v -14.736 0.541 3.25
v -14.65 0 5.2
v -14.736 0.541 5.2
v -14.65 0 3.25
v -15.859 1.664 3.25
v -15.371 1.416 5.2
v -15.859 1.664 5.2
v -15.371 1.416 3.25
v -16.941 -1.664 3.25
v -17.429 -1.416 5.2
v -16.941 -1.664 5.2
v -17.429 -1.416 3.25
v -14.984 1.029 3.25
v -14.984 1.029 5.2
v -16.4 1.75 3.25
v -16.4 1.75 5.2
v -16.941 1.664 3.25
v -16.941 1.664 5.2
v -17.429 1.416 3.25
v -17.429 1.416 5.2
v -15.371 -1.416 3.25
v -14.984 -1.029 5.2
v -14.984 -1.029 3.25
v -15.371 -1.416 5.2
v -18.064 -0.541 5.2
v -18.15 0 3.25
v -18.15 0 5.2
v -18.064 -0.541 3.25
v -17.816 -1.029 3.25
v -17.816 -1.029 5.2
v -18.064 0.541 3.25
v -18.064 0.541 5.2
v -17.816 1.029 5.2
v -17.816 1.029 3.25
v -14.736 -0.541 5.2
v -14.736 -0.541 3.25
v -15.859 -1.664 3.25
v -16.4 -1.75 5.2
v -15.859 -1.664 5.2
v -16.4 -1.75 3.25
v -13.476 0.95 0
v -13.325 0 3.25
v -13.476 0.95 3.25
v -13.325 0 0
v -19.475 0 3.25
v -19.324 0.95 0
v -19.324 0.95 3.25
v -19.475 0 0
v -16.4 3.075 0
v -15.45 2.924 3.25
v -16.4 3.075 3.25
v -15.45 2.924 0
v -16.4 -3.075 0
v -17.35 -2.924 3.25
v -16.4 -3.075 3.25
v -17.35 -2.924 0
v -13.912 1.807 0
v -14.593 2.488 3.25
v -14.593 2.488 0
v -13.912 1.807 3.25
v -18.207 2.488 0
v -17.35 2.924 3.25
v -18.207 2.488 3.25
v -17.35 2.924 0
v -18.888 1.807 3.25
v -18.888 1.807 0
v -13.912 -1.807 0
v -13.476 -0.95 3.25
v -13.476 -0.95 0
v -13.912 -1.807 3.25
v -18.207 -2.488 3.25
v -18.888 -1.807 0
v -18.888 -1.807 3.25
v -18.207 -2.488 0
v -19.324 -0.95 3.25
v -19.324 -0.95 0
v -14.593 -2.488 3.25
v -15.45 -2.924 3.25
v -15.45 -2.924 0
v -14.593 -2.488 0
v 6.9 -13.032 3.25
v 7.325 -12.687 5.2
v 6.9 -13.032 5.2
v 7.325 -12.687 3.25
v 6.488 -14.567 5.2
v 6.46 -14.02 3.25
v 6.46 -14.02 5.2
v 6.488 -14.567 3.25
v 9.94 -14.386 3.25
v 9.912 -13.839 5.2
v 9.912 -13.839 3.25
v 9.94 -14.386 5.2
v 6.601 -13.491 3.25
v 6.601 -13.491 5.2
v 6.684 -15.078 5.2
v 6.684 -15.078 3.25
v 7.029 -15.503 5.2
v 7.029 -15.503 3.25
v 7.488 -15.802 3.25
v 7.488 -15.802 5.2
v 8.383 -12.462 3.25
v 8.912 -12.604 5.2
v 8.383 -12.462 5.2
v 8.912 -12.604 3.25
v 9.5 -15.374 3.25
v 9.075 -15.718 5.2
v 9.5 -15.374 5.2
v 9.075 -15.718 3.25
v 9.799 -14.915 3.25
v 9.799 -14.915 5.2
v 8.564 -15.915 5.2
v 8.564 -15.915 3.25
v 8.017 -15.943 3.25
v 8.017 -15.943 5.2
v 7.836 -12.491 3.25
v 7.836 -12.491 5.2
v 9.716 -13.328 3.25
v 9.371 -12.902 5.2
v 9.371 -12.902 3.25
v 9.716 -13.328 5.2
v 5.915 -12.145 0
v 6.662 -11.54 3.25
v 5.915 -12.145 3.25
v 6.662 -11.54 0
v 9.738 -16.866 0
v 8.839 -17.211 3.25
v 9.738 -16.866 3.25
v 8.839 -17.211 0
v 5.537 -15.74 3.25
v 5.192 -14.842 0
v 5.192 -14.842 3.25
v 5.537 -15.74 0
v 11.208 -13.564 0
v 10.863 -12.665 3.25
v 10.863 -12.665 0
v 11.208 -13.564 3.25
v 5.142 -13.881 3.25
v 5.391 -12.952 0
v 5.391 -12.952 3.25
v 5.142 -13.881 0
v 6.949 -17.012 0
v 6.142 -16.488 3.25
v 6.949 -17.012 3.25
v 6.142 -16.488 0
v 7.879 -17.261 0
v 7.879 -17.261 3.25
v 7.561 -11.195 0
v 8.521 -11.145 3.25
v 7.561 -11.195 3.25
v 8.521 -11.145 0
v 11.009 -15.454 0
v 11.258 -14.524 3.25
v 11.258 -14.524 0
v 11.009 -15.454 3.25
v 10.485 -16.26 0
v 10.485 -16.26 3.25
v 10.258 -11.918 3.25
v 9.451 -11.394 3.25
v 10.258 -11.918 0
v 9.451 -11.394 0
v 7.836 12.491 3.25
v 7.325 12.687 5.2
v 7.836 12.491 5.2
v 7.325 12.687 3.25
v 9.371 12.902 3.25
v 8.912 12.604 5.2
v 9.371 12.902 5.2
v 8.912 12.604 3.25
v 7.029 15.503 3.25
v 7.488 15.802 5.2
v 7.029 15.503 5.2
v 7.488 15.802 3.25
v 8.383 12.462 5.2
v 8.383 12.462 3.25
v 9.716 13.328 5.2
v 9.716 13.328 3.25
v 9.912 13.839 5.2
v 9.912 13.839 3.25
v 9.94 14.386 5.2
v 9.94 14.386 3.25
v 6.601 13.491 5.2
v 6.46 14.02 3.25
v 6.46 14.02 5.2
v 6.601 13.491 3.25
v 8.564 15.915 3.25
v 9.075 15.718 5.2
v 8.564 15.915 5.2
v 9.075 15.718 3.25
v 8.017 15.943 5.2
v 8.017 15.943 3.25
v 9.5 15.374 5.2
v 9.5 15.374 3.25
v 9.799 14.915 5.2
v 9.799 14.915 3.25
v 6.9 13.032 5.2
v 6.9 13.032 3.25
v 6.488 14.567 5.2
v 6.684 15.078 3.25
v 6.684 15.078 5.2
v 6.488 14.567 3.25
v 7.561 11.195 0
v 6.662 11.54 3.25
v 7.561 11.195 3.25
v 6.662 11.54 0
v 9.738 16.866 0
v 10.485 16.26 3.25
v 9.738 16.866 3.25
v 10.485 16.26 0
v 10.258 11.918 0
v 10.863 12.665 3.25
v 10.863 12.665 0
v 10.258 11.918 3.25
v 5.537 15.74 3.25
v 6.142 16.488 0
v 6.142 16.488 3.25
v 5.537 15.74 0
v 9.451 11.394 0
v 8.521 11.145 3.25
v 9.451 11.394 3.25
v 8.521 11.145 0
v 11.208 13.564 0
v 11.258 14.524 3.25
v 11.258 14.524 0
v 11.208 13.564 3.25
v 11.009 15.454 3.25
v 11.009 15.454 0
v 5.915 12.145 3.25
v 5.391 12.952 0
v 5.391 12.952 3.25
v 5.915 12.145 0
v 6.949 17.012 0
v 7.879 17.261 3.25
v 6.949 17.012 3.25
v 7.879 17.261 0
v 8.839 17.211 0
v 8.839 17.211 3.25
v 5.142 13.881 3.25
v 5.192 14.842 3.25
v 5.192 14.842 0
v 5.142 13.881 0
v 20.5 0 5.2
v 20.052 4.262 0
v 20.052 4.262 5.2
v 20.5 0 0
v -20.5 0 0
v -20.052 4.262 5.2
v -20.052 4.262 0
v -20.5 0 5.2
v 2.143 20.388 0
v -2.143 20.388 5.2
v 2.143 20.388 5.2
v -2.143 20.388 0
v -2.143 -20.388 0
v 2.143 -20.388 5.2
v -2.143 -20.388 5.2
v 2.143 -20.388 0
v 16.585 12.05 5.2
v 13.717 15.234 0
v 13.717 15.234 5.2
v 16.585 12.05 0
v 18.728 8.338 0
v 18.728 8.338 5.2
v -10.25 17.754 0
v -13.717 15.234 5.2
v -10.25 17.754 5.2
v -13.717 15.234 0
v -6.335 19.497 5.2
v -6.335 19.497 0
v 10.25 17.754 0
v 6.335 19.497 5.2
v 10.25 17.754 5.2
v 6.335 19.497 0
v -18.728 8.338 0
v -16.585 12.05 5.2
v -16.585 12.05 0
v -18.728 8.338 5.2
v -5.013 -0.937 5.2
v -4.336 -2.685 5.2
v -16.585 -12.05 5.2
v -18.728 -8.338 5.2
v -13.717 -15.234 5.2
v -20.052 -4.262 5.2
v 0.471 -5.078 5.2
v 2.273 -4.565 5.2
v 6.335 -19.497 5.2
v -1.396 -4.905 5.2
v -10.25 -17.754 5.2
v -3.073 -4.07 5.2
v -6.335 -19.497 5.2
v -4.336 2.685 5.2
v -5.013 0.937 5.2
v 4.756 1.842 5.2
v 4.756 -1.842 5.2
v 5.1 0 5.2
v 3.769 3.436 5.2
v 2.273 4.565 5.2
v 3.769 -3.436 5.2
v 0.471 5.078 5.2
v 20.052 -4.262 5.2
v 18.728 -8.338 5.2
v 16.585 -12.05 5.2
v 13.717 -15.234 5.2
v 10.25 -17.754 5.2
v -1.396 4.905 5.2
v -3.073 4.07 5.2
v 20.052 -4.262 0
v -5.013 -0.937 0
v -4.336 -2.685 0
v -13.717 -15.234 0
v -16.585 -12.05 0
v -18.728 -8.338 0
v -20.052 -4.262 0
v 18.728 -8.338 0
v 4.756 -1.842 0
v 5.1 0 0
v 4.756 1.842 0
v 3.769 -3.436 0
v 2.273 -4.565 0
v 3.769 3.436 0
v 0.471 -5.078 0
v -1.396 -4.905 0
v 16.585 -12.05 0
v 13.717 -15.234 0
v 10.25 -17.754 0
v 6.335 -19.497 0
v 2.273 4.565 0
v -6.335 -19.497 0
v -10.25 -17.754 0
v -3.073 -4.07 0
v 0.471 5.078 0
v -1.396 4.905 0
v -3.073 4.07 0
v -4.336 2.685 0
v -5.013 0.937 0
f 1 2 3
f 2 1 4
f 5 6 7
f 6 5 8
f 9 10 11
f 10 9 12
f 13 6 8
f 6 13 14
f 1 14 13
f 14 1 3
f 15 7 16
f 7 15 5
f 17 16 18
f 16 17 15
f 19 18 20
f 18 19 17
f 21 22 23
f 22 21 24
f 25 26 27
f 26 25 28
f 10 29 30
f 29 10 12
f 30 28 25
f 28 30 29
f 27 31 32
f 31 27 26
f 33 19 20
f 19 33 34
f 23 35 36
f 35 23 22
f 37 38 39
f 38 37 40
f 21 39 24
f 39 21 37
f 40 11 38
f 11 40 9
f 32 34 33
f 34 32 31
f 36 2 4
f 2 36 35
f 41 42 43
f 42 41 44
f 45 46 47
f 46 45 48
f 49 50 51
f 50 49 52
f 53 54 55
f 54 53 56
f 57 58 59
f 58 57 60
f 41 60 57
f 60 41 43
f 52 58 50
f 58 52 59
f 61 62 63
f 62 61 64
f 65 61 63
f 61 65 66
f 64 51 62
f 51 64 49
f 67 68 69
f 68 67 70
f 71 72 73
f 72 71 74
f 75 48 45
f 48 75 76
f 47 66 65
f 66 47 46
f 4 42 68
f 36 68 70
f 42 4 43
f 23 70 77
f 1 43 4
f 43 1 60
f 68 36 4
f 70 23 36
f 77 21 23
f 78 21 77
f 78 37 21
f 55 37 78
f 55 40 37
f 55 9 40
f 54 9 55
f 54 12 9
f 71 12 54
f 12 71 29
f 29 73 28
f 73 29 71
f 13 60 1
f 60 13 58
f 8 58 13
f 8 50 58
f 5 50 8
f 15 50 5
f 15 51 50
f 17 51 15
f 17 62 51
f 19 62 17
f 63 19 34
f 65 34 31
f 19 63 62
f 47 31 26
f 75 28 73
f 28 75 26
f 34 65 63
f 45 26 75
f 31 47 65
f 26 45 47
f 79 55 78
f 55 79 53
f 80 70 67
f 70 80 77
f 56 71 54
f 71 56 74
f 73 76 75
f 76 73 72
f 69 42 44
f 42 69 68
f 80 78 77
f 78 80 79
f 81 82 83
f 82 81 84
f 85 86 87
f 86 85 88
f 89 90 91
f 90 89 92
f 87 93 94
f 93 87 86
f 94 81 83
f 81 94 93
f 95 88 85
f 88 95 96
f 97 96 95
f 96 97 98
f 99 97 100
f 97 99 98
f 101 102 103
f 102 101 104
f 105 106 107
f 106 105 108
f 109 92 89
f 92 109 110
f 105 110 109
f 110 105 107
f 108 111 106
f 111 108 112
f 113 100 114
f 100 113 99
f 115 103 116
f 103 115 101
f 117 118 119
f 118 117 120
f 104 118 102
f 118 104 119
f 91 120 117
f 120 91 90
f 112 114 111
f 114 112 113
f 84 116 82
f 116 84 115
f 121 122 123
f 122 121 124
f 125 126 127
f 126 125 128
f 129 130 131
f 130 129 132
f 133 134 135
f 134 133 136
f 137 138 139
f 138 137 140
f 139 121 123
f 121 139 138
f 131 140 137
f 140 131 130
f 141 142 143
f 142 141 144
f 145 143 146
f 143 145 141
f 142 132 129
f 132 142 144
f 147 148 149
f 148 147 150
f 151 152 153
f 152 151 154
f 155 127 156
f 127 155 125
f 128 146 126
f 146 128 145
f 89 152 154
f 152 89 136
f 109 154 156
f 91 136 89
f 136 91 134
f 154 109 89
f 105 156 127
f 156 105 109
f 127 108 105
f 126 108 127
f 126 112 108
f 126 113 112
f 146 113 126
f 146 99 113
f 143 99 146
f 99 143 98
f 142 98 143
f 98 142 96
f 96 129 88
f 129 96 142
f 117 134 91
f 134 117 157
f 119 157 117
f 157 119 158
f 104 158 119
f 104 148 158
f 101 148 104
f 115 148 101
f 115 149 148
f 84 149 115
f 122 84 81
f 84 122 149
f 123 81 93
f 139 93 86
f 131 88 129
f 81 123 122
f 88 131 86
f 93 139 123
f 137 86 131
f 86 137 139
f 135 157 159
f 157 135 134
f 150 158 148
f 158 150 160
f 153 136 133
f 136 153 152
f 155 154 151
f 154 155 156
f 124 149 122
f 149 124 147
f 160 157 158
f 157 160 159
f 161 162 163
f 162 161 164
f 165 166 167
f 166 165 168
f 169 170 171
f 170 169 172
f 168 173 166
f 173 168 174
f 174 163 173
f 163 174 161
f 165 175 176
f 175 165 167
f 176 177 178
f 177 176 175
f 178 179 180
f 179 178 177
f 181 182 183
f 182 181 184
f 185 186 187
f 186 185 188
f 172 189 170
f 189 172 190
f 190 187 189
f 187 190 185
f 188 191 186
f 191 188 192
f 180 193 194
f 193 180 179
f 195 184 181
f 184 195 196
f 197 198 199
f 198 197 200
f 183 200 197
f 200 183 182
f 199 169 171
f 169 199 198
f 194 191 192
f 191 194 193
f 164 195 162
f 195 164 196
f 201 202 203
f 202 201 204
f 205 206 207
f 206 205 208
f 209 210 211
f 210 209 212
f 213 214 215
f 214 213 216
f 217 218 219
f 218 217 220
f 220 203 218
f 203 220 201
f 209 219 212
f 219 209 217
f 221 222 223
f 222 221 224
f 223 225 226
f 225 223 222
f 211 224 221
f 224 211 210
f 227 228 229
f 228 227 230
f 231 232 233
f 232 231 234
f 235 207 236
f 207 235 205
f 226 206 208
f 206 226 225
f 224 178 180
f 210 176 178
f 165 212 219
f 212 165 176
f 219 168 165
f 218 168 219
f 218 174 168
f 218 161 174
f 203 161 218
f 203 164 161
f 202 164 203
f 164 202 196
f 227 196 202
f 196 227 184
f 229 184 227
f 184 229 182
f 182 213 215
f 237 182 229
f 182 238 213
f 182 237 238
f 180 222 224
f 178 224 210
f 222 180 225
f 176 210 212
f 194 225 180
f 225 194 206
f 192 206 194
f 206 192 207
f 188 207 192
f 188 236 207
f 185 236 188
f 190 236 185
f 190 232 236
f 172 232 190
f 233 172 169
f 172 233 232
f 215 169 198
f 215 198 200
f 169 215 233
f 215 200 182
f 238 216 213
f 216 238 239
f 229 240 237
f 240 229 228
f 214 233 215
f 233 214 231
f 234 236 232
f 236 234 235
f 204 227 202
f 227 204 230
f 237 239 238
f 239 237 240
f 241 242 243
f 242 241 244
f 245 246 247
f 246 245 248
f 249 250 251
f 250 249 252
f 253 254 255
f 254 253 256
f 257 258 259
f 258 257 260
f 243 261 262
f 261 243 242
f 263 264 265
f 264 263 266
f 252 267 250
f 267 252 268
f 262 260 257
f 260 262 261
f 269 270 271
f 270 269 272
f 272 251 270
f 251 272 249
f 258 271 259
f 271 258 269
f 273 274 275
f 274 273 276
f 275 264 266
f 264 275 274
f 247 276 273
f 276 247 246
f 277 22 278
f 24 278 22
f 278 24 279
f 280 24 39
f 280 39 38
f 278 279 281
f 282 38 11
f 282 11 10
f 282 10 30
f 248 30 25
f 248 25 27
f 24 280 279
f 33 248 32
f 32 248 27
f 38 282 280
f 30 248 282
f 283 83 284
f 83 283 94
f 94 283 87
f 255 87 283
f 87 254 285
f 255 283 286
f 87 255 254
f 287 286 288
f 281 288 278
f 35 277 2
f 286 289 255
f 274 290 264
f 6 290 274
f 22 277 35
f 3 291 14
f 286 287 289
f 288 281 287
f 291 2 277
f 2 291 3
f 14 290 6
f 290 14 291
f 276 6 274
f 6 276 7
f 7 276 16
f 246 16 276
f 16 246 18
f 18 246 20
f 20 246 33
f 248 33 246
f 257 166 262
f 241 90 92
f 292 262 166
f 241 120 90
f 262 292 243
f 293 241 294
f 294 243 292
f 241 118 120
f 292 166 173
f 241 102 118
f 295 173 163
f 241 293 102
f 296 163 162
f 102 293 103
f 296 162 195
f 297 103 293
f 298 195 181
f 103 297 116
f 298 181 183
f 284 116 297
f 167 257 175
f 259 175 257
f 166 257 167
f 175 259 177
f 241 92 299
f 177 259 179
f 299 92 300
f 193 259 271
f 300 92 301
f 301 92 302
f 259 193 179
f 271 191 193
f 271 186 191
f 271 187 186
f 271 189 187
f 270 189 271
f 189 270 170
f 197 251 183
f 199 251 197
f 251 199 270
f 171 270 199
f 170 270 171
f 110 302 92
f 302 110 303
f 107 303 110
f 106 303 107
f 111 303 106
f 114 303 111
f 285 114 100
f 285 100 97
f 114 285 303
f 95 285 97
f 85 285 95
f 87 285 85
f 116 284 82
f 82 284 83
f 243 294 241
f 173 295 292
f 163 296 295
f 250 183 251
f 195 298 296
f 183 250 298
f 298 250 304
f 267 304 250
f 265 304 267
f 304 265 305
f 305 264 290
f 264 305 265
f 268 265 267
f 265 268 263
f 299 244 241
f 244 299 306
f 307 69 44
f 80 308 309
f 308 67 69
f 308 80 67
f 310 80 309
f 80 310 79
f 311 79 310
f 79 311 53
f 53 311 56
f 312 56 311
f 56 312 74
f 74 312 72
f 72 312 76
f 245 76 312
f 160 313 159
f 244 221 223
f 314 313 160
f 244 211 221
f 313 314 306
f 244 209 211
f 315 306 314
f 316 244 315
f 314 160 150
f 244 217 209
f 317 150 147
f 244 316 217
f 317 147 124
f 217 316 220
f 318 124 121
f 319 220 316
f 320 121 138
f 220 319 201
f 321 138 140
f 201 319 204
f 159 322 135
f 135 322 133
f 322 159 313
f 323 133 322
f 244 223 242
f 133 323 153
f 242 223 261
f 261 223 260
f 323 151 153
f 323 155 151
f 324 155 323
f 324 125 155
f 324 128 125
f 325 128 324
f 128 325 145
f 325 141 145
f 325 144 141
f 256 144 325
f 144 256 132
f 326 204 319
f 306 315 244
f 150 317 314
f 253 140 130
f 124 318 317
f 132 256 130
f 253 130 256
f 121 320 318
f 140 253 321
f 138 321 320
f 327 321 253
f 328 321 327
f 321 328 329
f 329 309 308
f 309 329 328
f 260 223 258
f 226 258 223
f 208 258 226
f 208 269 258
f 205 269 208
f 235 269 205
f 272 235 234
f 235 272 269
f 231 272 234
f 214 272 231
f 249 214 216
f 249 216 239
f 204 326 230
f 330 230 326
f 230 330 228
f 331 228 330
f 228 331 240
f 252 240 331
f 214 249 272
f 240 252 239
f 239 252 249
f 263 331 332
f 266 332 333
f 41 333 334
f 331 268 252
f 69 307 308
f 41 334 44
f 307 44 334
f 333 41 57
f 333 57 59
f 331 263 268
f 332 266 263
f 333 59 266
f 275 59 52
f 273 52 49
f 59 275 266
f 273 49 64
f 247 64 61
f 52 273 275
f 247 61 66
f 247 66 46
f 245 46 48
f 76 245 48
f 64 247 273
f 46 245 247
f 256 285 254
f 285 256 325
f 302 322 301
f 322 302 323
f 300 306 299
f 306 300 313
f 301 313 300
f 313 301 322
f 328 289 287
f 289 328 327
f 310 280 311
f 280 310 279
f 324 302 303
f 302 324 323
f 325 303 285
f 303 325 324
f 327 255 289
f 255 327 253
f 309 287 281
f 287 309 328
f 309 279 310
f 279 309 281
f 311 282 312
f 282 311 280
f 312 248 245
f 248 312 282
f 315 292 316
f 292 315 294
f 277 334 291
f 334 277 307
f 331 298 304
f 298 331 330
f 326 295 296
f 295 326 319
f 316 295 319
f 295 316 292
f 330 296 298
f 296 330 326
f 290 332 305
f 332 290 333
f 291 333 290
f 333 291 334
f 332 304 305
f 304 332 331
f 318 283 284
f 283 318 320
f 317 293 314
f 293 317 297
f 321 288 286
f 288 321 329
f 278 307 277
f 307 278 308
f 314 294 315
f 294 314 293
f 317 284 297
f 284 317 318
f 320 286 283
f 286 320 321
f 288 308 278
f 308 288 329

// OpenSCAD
difference() {
	cylinder(d = 41.0000000000, h = 5.2000000000);
	translate(v = [0, 0, -0.0250000000]) {
		cylinder(d = 10.2000000000, h = 5.2500000000);
	}
	rotate(a = [180, 0, 0.0000000000]) {
		translate(v = [-16.4000000000, 0, -3.2000000000]) {
			rotate(a = [180, 0, 0]) {
				union() {
					translate(v = [0, 0, false]) {
						cylinder($fn = 20, d = 3.5000000000, h = 43.2000000000);
					}
					translate(v = [0, 0, -13.1500000000]) {
						cylinder($fn = 20, d = 6.1500000000, h = 13.2000000000);
					}
				}
			}
		}
	}
	rotate(a = [180, 0, 120.0000000000]) {
		translate(v = [-16.4000000000, 0, -3.2000000000]) {
			rotate(a = [180, 0, 0]) {
				union() {
					translate(v = [0, 0, false]) {
						cylinder($fn = 20, d = 3.5000000000, h = 43.2000000000);
					}
					translate(v = [0, 0, -13.1500000000]) {
						cylinder($fn = 20, d = 6.1500000000, h = 13.2000000000);
					}
				}
			}
		}
	}
	rotate(a = [180, 0, 240.0000000000]) {
		translate(v = [-16.4000000000, 0, -3.2000000000]) {
			rotate(a = [180, 0, 0]) {
				union() {
					translate(v = [0, 0, false]) {
						cylinder($fn = 20, d = 3.5000000000, h = 43.2000000000);
					}
					translate(v = [0, 0, -13.1500000000]) {
						cylinder($fn = 20, d = 6.1500000000, h = 13.2000000000);
					}
				}
			}
		}
	}
}
